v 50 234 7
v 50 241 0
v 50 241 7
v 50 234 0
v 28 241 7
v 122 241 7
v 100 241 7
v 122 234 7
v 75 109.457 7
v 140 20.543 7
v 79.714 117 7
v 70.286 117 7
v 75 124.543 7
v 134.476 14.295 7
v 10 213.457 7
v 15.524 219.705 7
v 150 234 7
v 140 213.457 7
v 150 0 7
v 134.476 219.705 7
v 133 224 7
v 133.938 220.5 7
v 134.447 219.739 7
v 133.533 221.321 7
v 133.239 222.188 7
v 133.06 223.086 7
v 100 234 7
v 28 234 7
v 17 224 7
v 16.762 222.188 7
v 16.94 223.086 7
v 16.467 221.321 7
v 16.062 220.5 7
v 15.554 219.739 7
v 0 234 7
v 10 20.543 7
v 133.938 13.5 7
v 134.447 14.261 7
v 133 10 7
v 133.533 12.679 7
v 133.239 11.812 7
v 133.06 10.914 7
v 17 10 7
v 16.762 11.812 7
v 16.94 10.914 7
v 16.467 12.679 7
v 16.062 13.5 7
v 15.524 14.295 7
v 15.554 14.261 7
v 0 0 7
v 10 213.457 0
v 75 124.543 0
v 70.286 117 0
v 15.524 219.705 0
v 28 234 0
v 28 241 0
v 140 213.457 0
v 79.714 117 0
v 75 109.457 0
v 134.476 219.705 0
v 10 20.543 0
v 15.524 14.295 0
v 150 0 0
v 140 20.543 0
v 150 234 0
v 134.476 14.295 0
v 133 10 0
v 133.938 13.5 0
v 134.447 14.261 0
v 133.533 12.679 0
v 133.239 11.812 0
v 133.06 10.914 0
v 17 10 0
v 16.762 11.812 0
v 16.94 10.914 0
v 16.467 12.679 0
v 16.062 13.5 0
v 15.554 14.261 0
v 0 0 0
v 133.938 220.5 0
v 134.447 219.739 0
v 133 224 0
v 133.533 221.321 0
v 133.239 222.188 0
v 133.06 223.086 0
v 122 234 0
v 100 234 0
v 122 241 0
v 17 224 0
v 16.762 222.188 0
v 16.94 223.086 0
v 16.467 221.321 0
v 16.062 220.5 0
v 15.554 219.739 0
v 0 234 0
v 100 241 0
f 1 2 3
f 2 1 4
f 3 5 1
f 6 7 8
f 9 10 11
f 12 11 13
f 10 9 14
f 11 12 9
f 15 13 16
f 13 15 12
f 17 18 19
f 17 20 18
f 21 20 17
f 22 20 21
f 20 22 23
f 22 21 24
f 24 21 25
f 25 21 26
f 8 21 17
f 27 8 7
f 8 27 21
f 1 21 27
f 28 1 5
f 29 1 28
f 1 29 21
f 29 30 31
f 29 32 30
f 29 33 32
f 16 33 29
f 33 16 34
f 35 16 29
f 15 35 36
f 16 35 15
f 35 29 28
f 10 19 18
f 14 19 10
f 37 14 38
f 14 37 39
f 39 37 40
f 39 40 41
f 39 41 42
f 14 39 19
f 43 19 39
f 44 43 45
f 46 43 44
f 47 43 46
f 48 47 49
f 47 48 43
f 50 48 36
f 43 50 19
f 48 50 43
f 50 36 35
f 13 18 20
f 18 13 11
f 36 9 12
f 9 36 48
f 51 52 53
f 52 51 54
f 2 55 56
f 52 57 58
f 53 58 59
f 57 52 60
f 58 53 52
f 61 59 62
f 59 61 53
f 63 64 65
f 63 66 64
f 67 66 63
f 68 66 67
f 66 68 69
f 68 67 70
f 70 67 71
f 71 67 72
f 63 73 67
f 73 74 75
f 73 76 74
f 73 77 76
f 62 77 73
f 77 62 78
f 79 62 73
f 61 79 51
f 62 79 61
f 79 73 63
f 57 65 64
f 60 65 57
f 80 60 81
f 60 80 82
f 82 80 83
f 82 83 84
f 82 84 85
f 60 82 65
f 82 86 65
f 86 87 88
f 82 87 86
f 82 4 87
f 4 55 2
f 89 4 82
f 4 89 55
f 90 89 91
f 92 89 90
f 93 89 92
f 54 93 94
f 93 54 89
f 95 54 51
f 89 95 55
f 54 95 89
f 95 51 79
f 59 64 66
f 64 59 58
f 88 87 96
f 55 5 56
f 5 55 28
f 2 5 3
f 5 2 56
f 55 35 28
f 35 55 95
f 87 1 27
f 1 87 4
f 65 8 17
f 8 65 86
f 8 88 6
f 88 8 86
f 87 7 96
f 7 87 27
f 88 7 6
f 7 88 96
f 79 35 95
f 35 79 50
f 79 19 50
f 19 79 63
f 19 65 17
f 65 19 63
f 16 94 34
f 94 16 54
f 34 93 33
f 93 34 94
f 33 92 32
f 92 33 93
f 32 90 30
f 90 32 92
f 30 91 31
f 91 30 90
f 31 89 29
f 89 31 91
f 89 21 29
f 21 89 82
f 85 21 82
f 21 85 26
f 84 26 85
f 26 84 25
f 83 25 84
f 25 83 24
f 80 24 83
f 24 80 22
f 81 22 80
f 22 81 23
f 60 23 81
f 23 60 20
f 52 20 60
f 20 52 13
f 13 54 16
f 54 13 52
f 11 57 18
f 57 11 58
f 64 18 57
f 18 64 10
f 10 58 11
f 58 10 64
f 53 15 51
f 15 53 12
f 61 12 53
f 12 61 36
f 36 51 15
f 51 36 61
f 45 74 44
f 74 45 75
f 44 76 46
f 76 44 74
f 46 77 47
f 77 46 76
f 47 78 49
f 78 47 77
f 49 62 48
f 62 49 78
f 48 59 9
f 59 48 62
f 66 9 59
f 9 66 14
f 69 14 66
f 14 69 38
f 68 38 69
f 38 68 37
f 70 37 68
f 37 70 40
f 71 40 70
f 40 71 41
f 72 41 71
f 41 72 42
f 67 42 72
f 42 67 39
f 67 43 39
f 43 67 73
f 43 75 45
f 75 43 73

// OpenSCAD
$fn=48;

// V5 lightweight support
// Same calibrated top interface as earlier version.
// 150 mm wide x 234 mm body + 7 mm tabs = 241 mm total part height.
// Intended as a seated footrest support, not a step stool.

W = 150;
H = 234;
T = 7;

frame = 10;     // reduced from 12 mm
brace = 8;      // reduced from 10 mm

tab_w = 22;
tab_h = 7;
tab_t = 7;
tab_centers = [39,111];

// Small local "gusset" radius at brace/frame junctions.
module beam2d(x1,y1,x2,y2,w){
    hull(){
        translate([x1,y1]) circle(d=w);
        translate([x2,y2]) circle(d=w);
    }
}

module frame2d(){
    union(){
        // perimeter
        square([W,frame]);
        translate([0,H-frame]) square([W,frame]);
        translate([0,frame]) square([frame,H-2*frame]);
        translate([W-frame,frame]) square([frame,H-2*frame]);

        // X bracing, deliberately overlapping the perimeter
        beam2d(frame-5, frame-5, W-frame+5, H-frame+5, brace);
        beam2d(W-frame+5, frame-5, frame-5, H-frame+5, brace);

        // modest junction pads where braces cross perimeter:
        // these smooth stress flow without thickening every member.
        for (p=[[frame,frame],[W-frame,frame],[frame,H-frame],[W-frame,H-frame]])
            translate(p) circle(d=14);
    }
}

module support(){
    union(){
        linear_extrude(T) frame2d();

        // calibrated 7 x 22 x 7 mm tabs
        for (c=tab_centers)
            translate([c-tab_w/2,H,0])
                cube([tab_w,tab_h,tab_t]);
    }
}

support();
